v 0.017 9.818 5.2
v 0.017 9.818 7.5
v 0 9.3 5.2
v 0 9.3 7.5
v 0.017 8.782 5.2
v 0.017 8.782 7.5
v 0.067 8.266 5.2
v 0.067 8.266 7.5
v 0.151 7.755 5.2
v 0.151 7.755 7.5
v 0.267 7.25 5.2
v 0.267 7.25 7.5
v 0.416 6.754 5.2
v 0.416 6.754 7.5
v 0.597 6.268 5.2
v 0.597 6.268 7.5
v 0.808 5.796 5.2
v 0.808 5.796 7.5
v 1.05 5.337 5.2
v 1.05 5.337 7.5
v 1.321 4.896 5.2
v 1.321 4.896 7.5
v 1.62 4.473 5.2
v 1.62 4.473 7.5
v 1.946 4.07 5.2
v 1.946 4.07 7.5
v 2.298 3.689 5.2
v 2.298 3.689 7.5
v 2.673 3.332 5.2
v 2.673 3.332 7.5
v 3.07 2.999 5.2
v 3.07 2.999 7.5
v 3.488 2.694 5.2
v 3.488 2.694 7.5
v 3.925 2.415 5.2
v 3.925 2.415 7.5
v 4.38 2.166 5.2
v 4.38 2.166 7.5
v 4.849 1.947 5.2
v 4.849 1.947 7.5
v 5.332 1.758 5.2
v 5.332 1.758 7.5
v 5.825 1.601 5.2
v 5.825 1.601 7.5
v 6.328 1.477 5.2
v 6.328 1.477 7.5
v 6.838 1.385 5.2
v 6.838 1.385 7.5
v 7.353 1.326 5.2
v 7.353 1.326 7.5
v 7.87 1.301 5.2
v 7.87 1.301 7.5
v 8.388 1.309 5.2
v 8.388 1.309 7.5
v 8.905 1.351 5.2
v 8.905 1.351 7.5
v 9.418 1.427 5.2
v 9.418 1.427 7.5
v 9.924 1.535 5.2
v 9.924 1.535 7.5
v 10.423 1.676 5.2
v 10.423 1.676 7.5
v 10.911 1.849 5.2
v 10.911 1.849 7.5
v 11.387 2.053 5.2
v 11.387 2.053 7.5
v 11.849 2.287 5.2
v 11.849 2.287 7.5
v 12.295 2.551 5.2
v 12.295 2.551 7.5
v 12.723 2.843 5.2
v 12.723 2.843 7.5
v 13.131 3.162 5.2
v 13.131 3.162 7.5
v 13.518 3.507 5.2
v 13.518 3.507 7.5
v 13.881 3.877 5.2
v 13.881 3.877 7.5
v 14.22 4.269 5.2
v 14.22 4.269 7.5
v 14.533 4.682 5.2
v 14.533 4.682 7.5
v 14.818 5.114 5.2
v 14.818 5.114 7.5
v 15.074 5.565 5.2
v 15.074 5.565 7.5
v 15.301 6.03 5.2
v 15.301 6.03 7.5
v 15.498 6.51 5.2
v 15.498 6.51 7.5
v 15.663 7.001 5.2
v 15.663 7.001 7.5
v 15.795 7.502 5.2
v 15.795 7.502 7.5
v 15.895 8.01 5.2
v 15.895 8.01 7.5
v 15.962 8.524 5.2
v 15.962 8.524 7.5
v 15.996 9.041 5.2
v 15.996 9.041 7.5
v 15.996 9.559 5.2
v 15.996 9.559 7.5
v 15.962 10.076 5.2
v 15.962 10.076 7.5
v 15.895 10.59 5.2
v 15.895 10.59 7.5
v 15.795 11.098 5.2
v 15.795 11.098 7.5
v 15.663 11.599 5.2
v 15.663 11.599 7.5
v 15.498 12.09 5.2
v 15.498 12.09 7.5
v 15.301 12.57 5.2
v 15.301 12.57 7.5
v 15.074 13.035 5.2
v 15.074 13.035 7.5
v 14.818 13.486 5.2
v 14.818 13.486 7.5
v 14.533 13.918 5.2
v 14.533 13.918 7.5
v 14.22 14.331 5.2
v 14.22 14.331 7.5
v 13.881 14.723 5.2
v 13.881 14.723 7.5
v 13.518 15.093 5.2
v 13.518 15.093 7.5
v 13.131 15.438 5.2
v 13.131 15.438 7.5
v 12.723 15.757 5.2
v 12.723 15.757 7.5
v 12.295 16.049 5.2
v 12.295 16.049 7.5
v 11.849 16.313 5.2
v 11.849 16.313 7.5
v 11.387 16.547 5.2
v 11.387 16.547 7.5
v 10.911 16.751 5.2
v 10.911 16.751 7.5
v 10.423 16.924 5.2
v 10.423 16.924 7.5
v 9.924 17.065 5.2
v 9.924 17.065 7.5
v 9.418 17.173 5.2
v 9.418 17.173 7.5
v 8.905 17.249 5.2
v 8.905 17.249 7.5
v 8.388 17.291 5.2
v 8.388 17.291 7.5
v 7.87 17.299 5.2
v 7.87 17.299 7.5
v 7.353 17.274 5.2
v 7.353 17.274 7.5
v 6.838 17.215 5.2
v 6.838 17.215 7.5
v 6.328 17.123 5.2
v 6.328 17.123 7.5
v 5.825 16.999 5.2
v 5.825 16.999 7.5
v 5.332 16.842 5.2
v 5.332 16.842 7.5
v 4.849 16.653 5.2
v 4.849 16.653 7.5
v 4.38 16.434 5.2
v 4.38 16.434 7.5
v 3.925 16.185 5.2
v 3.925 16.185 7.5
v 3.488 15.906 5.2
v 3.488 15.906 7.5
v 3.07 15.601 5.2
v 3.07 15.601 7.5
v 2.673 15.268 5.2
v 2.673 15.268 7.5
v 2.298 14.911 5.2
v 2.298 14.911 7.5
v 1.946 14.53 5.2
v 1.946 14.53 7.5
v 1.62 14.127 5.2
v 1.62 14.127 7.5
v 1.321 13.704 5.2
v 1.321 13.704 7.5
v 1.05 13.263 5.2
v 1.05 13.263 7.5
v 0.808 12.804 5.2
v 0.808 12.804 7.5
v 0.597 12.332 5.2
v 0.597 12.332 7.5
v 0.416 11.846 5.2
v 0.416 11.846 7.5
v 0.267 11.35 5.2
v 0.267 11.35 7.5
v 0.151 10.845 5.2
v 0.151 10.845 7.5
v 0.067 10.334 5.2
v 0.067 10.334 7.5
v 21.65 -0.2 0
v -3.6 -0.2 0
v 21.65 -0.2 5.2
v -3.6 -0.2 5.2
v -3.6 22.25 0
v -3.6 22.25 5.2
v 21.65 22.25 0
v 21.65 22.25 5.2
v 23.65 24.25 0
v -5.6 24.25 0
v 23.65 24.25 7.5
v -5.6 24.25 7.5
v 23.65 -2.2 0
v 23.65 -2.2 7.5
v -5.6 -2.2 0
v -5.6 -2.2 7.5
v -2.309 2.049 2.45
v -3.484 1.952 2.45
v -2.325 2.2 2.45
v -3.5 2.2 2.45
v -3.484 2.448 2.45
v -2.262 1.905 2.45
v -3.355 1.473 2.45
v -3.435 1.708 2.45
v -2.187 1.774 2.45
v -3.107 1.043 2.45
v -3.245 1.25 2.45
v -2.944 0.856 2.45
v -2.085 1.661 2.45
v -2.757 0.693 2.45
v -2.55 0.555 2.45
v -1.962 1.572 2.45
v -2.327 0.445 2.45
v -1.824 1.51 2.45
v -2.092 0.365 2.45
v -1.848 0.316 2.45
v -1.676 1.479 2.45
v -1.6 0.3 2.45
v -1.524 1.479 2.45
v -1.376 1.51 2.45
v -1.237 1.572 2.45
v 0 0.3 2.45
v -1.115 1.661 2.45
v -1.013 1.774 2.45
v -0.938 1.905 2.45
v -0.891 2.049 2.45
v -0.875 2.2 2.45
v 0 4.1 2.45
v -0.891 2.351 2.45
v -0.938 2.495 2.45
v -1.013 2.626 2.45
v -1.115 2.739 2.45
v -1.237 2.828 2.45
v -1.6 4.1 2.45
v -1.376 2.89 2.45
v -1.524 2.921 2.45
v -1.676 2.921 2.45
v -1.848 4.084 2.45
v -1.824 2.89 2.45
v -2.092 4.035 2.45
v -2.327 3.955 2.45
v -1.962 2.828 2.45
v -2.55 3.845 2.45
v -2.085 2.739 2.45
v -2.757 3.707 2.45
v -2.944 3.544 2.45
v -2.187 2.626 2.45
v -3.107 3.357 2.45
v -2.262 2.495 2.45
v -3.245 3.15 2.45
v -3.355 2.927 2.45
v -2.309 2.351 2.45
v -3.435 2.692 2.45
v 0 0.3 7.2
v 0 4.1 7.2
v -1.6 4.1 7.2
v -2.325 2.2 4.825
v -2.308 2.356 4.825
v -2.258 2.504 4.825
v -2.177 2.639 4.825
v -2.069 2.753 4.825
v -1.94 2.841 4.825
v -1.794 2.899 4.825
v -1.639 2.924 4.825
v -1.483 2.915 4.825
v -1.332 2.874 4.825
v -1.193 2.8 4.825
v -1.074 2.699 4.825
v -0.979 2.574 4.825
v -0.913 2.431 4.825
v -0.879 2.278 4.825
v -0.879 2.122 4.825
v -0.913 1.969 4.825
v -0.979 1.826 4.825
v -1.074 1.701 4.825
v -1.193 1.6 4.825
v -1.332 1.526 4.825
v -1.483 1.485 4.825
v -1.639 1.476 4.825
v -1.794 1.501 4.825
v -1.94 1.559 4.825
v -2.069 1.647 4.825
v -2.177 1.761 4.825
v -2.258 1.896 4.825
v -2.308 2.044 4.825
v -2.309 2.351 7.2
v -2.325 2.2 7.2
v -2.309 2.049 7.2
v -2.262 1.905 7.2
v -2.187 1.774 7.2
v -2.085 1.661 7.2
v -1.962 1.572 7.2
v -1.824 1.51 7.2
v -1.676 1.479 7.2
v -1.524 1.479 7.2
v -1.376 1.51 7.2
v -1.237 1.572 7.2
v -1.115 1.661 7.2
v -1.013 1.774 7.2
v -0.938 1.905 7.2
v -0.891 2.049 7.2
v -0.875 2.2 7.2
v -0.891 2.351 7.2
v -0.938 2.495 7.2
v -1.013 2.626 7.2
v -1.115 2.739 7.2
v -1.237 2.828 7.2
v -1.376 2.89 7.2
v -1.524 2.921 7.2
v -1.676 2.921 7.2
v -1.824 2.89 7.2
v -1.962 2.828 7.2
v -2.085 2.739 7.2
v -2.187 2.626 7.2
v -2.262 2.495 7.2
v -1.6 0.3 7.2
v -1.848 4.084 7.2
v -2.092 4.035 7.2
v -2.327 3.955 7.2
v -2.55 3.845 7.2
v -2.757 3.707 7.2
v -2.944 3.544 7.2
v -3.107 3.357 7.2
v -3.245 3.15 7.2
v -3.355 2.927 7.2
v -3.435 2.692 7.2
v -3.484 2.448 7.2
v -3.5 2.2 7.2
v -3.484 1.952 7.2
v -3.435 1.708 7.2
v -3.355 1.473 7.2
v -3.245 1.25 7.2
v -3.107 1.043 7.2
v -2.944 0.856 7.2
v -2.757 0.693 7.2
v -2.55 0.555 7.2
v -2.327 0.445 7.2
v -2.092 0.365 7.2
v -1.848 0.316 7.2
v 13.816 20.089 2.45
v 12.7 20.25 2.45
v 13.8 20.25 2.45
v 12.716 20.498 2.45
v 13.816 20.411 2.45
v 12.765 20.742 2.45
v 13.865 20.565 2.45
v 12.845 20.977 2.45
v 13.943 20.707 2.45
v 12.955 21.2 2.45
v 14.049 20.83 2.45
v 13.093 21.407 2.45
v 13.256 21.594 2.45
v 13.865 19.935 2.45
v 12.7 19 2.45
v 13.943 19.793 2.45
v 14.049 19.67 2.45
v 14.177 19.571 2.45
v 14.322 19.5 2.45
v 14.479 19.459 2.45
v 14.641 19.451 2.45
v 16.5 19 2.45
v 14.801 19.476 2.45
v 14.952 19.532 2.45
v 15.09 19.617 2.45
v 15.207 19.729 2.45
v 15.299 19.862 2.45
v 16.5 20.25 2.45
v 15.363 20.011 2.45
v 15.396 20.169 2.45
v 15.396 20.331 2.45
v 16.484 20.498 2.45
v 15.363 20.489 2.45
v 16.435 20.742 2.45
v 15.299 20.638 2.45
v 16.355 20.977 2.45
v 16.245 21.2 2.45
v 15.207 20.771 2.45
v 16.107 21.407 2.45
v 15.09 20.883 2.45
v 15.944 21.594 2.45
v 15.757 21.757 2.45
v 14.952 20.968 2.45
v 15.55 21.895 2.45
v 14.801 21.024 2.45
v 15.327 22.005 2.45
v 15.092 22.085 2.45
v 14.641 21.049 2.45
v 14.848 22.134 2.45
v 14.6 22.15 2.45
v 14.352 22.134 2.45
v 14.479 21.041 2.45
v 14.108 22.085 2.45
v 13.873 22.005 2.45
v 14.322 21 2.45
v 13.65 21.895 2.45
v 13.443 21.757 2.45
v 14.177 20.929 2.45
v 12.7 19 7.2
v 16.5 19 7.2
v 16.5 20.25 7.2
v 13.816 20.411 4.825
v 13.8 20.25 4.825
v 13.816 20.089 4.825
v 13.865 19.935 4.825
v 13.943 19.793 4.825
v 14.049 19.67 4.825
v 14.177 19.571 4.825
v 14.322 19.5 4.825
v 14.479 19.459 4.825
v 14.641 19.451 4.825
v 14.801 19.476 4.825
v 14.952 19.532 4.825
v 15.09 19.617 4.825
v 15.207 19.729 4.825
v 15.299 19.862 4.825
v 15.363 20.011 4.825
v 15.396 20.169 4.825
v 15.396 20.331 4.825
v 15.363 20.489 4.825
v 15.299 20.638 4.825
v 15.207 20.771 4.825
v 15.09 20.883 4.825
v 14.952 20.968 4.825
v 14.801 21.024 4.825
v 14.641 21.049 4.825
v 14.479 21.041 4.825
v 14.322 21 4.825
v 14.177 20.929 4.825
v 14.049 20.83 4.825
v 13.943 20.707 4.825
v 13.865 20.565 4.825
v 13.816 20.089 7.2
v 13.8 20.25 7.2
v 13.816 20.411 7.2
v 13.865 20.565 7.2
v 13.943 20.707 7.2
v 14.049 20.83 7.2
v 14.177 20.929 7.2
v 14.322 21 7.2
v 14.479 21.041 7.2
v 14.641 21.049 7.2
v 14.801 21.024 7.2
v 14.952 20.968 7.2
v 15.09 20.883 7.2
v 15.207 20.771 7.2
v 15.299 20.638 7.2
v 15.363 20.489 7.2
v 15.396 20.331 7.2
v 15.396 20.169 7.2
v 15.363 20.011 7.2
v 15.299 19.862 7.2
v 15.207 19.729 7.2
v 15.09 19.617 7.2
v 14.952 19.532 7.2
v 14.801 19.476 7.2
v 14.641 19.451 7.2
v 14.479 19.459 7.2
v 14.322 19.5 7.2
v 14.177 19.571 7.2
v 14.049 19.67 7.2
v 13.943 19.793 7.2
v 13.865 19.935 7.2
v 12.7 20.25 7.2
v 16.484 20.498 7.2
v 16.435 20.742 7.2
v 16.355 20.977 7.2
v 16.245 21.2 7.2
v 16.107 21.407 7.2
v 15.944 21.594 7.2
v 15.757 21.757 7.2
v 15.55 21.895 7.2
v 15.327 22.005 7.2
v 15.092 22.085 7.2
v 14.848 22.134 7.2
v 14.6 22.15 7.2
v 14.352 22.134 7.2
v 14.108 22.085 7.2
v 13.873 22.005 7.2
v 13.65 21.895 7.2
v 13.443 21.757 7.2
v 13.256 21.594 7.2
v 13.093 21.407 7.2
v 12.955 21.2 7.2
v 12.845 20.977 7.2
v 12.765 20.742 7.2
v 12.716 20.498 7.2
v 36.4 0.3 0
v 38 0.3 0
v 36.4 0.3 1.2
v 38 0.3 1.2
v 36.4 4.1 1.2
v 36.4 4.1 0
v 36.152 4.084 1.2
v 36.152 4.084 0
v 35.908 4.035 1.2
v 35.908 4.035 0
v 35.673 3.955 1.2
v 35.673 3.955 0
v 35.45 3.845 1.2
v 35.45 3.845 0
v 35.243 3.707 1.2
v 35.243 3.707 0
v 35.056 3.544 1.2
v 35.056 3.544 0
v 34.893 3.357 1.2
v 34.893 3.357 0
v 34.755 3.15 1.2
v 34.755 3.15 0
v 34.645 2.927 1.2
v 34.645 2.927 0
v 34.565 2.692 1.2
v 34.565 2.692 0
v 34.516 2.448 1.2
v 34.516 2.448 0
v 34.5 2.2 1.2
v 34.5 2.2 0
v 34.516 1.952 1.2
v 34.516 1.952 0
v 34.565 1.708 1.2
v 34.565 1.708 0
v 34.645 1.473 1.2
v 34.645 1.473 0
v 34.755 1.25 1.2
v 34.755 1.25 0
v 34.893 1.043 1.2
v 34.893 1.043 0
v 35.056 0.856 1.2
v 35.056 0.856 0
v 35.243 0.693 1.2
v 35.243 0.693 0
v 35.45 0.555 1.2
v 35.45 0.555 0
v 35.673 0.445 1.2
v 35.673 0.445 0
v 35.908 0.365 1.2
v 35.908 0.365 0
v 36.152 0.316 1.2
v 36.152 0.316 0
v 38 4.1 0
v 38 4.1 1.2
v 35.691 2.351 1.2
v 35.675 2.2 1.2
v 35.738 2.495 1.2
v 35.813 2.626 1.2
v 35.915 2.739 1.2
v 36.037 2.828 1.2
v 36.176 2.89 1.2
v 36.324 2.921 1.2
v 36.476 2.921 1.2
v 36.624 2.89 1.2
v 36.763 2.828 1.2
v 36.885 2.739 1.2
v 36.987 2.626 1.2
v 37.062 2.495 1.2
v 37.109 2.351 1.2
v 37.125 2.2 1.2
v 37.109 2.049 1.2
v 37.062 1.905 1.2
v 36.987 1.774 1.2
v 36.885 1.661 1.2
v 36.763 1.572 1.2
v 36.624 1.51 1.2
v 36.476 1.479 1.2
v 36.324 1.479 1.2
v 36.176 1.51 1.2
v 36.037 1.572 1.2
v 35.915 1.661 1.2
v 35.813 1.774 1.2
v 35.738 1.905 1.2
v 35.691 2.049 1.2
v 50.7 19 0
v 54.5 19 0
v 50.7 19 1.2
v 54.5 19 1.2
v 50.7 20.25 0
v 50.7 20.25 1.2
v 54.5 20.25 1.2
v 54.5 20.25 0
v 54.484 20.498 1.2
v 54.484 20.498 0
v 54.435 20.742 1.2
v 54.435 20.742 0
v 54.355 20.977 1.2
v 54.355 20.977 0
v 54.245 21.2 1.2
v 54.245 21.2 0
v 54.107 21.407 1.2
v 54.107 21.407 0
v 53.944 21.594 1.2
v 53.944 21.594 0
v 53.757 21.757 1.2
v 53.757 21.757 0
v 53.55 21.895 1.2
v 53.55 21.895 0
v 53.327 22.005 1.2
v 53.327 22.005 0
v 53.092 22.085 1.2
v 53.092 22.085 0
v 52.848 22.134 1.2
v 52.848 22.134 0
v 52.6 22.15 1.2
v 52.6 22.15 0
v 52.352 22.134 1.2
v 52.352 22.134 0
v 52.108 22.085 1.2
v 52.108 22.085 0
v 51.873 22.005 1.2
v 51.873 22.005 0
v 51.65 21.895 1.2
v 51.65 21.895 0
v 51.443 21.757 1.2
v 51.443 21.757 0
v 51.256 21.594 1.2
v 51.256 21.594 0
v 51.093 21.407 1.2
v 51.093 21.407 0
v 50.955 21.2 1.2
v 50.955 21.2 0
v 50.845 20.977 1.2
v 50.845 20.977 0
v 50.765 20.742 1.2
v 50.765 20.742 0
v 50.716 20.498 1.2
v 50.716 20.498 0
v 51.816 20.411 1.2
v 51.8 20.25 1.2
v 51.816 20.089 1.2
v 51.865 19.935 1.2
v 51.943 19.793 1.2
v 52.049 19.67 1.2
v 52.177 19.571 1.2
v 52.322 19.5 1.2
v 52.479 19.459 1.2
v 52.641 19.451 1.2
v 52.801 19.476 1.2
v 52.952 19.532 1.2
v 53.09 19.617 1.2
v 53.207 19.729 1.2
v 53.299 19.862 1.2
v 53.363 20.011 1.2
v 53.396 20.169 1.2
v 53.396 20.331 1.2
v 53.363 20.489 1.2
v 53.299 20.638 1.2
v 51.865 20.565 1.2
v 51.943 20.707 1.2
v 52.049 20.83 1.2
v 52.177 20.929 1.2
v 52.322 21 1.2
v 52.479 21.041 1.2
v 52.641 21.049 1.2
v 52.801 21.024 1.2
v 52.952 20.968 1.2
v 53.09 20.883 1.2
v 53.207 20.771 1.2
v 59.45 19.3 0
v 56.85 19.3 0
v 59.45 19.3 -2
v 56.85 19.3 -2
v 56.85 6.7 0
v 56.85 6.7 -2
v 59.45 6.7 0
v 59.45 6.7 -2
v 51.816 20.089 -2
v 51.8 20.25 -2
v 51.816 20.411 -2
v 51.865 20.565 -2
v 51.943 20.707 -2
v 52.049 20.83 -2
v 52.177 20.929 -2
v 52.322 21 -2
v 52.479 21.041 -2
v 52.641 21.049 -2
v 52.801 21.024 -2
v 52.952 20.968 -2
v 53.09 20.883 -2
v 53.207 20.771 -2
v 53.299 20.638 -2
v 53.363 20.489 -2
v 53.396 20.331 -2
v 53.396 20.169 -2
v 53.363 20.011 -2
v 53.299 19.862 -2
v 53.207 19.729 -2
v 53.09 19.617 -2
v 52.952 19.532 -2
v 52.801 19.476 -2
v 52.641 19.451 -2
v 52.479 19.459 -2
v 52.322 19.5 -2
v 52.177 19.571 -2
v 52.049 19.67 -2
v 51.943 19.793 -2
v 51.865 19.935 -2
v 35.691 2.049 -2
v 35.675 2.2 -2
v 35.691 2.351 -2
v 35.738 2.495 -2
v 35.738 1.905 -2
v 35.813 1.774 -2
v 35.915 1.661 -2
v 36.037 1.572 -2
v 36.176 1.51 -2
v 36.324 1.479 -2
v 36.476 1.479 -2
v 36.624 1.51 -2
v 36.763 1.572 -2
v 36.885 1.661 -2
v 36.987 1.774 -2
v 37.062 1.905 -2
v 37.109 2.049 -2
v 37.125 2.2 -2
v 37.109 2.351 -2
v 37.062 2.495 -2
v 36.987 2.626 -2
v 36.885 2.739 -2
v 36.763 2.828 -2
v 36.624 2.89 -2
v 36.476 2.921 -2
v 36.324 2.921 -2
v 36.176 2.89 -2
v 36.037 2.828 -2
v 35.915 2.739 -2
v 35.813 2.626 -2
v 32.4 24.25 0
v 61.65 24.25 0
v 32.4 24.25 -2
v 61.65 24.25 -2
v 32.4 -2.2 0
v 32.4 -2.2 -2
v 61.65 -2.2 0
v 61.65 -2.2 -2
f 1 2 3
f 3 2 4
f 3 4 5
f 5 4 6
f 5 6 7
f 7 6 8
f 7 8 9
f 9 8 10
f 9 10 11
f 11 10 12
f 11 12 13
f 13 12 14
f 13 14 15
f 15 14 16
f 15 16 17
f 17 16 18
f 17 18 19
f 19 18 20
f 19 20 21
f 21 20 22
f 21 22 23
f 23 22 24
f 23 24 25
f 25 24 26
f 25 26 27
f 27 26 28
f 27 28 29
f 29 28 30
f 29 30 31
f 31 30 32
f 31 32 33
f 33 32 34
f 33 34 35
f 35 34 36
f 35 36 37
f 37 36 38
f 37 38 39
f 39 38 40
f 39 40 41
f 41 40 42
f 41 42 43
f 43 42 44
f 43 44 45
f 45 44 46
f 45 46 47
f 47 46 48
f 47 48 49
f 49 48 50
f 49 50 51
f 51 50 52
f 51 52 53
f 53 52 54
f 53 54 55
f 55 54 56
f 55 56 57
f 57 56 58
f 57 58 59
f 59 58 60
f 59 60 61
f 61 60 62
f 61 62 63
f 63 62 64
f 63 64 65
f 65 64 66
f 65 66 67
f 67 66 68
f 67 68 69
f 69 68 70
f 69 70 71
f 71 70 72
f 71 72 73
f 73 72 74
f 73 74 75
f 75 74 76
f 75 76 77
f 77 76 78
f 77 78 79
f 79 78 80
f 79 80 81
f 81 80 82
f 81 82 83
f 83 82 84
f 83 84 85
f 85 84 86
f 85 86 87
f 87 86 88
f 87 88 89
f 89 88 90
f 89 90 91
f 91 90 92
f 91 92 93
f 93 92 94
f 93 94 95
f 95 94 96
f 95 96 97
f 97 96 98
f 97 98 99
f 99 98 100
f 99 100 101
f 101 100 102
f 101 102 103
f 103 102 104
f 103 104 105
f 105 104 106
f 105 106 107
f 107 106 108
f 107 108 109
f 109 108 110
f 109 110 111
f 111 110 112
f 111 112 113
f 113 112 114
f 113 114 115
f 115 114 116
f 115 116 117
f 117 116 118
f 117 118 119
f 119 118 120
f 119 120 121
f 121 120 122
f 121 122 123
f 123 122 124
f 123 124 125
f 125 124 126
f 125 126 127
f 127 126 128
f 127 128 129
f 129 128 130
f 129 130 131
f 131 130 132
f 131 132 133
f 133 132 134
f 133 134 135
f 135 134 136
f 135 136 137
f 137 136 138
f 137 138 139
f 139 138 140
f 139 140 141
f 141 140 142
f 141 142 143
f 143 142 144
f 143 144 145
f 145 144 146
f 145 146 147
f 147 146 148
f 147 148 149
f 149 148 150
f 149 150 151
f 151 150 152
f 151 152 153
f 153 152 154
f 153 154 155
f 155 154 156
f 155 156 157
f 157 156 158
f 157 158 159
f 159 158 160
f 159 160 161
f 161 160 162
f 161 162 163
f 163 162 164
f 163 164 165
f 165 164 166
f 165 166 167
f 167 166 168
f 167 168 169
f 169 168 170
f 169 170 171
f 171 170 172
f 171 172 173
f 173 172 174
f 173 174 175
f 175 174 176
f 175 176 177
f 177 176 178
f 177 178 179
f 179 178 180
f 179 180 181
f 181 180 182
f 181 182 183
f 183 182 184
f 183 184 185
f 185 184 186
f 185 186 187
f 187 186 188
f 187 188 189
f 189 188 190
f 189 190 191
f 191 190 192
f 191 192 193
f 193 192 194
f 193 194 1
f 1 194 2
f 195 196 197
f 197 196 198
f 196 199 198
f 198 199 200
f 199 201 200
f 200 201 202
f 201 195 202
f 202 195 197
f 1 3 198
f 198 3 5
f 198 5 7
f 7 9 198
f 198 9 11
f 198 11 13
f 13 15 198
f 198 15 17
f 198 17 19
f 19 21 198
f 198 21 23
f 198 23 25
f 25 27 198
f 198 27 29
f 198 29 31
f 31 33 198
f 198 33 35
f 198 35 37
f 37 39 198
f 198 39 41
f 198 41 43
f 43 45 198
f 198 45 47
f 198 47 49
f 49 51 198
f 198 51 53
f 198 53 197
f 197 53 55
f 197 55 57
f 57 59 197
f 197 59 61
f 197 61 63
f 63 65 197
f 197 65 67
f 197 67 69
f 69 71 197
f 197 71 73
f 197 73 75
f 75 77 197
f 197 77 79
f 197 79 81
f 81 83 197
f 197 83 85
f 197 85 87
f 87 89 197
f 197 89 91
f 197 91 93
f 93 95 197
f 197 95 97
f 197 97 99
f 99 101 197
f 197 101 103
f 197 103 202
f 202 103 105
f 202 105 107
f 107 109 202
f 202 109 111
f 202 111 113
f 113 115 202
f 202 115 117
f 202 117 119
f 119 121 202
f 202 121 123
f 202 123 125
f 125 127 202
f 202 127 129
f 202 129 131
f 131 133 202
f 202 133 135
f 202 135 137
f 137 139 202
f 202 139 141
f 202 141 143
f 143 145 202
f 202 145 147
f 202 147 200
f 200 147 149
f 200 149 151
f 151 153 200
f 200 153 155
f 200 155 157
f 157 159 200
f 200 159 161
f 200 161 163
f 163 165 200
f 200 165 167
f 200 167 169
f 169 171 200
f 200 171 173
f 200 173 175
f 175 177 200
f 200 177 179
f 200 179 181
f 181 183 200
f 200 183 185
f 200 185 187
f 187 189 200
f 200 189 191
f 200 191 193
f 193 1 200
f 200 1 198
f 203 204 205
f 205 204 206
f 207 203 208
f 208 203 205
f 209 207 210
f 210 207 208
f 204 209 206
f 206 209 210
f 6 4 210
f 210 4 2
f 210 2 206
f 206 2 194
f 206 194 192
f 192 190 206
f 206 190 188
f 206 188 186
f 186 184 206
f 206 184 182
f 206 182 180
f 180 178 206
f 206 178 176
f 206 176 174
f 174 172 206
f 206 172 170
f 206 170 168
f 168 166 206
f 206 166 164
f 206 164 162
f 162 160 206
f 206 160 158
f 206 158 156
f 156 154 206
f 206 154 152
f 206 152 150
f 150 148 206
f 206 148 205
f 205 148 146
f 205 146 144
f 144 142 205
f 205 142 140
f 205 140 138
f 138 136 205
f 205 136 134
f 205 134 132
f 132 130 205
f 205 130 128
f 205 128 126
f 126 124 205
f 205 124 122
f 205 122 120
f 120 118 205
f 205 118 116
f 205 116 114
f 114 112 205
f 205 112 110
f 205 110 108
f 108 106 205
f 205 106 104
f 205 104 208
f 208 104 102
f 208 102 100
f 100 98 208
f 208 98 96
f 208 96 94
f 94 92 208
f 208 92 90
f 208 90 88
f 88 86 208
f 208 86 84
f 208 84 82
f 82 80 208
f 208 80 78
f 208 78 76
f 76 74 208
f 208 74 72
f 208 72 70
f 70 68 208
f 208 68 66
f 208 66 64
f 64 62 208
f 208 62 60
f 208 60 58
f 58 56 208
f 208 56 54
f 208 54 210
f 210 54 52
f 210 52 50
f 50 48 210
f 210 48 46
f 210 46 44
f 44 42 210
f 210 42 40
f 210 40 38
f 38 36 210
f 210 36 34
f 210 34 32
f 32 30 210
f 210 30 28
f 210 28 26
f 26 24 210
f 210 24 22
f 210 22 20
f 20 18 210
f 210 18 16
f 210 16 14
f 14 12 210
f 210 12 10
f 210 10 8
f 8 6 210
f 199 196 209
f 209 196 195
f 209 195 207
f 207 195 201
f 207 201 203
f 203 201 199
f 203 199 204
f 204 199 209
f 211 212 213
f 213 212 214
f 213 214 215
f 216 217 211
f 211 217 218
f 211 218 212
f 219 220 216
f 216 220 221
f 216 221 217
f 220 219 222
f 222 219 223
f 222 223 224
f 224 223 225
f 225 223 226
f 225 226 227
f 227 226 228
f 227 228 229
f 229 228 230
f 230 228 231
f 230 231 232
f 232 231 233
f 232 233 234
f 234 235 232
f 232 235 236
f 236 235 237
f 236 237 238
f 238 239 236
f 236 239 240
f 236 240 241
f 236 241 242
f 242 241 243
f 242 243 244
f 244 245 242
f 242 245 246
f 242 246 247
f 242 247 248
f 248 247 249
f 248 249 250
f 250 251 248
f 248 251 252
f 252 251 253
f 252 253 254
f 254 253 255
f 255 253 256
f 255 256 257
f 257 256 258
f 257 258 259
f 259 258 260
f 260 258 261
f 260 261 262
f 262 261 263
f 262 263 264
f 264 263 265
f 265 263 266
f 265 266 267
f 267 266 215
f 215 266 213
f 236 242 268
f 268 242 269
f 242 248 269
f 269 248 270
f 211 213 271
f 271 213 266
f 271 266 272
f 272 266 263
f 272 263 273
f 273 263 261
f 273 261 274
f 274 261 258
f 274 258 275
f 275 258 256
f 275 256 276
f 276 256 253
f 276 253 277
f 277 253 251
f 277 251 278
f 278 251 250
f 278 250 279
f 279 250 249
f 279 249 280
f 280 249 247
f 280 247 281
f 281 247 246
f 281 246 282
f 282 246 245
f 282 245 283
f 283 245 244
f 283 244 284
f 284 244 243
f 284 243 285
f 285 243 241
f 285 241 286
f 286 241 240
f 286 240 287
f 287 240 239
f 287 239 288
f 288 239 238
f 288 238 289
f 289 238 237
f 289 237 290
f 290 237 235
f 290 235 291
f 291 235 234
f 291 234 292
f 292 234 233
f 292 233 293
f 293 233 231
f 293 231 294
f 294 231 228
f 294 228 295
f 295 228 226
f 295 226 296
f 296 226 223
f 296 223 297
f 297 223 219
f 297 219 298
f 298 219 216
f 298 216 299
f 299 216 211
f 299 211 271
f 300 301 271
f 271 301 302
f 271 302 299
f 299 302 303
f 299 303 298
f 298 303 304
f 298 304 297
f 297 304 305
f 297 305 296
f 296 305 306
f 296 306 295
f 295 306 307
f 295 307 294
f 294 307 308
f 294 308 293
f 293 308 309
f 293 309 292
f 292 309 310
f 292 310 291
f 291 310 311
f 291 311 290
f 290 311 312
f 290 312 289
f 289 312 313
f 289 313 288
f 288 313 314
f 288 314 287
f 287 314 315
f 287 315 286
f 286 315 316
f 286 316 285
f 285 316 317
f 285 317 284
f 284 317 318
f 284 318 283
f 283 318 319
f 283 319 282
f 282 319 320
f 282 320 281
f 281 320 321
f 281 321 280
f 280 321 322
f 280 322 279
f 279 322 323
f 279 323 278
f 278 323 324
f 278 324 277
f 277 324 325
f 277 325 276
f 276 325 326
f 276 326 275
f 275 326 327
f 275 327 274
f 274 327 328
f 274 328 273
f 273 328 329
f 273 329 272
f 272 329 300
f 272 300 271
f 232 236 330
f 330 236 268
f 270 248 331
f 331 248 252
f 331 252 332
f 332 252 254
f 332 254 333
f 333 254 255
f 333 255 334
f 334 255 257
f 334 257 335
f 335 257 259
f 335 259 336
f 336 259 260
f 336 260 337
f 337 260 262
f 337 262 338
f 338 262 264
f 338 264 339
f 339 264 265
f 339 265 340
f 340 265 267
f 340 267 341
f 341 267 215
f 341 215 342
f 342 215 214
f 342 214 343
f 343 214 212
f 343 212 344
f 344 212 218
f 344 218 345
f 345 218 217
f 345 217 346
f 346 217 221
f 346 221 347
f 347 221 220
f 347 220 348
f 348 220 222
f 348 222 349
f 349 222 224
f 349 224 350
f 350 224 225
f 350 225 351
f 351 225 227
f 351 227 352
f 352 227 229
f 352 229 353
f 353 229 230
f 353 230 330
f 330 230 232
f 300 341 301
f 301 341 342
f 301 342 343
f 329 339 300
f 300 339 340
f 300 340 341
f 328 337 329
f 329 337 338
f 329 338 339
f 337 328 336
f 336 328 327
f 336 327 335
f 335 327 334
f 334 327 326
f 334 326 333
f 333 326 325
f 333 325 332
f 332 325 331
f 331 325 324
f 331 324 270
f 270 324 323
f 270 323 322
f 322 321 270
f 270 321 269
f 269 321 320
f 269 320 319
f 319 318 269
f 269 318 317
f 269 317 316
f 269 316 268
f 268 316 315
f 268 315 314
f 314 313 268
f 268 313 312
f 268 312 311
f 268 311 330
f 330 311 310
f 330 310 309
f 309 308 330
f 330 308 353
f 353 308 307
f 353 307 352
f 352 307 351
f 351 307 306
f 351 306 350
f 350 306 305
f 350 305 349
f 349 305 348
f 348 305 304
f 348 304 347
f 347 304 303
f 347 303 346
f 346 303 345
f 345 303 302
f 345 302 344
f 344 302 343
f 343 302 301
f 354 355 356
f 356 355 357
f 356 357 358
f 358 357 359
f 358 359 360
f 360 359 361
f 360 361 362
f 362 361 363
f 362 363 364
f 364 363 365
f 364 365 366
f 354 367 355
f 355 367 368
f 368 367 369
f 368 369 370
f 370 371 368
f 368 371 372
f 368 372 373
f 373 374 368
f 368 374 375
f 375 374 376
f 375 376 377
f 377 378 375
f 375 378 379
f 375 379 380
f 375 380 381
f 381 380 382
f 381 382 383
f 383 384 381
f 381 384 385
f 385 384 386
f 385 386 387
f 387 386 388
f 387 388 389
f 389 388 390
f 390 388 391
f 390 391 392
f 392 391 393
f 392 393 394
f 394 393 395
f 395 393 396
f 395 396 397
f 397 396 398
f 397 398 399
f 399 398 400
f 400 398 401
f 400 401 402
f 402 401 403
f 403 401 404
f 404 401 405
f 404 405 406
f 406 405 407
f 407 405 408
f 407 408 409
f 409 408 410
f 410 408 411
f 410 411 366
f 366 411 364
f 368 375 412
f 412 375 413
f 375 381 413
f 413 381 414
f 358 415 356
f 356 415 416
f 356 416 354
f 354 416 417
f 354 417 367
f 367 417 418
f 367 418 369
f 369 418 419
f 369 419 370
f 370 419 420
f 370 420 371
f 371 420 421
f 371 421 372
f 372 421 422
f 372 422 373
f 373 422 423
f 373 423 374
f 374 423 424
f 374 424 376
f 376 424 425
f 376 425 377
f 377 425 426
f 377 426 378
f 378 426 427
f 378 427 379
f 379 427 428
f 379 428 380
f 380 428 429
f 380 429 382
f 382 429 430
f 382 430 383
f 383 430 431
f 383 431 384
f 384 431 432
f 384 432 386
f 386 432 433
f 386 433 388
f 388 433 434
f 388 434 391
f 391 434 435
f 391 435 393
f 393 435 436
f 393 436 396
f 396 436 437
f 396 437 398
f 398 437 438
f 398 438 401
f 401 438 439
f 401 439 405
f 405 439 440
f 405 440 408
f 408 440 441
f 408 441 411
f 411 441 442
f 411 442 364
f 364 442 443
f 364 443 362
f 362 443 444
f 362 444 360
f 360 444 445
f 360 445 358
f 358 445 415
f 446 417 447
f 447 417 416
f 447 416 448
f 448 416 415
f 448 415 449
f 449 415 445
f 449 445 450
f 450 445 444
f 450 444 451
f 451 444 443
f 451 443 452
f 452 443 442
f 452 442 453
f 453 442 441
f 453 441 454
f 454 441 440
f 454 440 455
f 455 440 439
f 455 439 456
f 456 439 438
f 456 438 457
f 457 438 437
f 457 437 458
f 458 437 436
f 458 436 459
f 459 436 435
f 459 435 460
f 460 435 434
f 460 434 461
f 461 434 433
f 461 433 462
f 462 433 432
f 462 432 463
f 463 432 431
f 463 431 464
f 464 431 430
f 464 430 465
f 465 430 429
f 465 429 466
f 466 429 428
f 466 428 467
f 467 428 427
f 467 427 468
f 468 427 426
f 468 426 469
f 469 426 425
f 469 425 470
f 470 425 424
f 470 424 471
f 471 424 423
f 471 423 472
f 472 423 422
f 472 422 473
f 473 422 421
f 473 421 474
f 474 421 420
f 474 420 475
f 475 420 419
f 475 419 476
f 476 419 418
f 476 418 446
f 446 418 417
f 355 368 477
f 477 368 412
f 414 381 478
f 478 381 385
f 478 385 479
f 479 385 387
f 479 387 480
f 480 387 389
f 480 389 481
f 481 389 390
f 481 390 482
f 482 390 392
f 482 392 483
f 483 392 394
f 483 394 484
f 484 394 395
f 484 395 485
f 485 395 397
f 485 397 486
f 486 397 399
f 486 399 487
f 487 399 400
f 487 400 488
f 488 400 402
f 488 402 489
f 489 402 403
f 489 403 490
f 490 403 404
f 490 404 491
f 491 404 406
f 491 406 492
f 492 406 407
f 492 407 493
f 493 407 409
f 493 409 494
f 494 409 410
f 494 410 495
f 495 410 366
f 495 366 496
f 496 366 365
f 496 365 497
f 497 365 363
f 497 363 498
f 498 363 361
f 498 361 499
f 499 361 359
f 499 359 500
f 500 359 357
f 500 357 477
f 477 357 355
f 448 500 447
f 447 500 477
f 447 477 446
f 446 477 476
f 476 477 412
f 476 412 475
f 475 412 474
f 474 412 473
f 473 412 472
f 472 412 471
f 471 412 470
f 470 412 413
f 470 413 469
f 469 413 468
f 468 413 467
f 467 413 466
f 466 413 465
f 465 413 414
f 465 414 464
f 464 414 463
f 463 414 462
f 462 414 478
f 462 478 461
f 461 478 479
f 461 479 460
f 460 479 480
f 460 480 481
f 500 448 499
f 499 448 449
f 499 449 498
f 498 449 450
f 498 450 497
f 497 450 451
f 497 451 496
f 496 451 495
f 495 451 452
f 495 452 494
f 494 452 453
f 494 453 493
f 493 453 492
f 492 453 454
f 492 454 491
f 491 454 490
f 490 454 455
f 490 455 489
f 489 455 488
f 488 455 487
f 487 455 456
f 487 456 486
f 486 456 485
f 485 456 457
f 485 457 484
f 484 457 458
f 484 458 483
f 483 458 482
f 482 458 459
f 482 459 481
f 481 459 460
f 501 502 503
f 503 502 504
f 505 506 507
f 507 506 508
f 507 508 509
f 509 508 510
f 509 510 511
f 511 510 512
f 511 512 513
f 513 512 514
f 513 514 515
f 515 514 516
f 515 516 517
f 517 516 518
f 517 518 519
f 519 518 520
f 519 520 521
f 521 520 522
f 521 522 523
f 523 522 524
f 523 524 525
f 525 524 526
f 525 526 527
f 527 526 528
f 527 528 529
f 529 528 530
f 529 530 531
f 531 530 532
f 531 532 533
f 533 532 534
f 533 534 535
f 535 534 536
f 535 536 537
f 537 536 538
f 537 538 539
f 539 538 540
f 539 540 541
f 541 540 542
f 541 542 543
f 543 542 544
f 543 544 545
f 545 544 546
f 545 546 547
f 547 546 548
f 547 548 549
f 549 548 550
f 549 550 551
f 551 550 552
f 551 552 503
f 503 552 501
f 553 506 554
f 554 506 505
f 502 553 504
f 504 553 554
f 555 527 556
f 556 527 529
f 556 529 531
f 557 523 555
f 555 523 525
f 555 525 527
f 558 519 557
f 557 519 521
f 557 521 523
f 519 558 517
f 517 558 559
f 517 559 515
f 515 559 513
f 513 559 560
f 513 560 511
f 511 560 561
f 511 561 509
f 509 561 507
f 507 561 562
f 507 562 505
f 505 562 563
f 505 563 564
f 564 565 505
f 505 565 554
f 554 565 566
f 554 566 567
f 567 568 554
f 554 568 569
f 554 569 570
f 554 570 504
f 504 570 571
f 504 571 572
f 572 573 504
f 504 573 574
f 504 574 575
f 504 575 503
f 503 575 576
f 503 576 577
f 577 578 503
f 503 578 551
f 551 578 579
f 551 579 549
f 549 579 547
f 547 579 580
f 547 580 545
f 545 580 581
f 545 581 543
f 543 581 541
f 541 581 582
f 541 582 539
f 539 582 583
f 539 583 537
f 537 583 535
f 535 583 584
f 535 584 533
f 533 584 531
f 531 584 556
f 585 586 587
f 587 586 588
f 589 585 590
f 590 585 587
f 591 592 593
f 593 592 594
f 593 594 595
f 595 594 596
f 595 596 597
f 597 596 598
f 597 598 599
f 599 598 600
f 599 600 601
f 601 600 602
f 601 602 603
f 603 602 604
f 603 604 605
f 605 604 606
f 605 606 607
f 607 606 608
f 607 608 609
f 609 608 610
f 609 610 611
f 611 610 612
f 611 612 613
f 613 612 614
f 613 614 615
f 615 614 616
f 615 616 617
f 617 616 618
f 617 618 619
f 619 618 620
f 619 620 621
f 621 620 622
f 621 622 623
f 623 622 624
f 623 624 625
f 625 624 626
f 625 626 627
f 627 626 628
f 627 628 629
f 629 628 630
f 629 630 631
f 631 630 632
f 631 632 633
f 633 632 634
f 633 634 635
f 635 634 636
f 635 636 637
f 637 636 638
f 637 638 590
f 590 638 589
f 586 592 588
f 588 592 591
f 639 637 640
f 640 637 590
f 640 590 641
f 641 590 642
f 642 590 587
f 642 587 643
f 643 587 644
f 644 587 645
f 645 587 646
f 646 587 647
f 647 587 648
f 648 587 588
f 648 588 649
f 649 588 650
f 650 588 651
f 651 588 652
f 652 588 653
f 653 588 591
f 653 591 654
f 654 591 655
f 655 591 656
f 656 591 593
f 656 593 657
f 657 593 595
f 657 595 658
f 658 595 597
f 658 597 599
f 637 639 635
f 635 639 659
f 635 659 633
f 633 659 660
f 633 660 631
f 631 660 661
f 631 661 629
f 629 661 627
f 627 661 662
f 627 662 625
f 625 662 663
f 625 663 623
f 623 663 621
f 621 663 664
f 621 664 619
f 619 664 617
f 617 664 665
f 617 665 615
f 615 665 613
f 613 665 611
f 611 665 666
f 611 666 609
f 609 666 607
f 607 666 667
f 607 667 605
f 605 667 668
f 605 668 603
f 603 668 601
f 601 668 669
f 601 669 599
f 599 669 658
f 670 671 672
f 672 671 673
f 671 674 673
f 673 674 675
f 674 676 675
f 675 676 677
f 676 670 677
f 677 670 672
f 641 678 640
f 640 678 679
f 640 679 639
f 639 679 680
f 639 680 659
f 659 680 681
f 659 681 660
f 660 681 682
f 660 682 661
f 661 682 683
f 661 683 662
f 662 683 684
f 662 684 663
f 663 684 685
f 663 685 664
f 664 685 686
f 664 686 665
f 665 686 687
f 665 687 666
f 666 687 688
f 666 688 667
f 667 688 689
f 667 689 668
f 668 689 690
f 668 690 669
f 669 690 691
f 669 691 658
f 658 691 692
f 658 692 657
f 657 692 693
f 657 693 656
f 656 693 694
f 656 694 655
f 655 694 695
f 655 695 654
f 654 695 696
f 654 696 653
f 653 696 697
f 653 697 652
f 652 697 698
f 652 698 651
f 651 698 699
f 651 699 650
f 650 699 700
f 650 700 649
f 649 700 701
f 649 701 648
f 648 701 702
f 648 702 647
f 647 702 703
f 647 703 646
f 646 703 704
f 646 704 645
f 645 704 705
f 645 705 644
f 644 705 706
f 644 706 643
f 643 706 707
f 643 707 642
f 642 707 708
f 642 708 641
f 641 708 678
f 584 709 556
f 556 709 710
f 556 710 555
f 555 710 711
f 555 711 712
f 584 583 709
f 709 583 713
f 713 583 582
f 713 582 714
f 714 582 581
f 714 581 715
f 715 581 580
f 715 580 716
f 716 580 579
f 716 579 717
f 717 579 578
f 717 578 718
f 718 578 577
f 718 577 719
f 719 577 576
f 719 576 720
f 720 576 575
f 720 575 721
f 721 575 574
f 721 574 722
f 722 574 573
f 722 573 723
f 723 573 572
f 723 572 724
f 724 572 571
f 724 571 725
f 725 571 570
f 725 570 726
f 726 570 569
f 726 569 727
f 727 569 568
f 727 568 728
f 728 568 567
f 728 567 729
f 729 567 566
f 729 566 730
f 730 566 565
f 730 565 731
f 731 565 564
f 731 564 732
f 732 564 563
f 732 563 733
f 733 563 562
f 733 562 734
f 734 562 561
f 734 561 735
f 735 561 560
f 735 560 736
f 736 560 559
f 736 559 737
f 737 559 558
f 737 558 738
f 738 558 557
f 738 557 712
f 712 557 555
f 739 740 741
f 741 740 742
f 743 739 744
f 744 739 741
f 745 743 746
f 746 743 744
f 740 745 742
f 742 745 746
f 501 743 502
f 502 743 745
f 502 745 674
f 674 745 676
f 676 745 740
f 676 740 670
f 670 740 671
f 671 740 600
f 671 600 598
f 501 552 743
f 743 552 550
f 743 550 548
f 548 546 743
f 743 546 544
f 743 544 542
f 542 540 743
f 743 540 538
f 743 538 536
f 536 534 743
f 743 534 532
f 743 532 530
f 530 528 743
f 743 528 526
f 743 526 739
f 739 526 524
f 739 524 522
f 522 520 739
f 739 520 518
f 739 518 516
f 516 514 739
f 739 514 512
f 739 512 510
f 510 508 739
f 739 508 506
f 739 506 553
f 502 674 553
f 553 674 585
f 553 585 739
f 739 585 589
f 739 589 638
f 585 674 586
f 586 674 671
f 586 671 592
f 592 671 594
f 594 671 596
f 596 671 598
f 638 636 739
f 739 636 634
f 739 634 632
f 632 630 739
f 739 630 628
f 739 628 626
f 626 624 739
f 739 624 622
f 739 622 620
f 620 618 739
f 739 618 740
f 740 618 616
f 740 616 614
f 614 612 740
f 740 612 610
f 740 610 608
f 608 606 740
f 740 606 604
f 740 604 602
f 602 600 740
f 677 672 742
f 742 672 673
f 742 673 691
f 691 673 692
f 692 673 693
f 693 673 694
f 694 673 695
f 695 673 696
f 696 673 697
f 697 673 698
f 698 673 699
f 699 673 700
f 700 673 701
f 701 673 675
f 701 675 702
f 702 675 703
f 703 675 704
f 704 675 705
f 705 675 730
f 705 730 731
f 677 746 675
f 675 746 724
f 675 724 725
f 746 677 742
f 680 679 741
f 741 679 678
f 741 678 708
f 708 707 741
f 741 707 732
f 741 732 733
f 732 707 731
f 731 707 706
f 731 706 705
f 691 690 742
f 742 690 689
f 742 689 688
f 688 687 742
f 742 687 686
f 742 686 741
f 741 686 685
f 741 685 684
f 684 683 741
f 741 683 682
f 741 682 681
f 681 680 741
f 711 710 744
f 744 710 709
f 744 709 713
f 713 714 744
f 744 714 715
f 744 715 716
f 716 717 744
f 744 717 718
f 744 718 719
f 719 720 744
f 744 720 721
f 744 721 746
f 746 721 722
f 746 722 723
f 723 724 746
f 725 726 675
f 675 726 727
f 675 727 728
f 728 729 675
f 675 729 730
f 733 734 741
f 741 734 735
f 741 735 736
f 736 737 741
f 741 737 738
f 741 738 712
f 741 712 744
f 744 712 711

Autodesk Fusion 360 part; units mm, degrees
sketch "Sketch3" plane through (0, 0, 0) normal (0, 0, 1) x (1, 0, 0)
  line L0 (0, 0) -> (16.95, 0)
  line L1 (16.95, 0) -> (16.95, 19)
  line L2 (16.95, 19) -> (0, 19)
  line L3 (0, 19) -> (0, 0)
  circle A0 centre (8, 9.3) radius 8
  circle A1 centre (14.6, 20.25) radius 0.8
  circle A2 centre (14.6, 20.25) radius 1.9
  line L4 (16.5, 20.25) -> (12.7, 20.25)
  line L5 (12.7, 20.25) -> (12.7, 19)
  line L6 (12.7, 19) -> (16.5, 19)
  line L7 (16.5, 19) -> (16.5, 20.25)
  circle A3 centre (-1.6, 2.2) radius 0.725
  circle A4 centre (-1.6, 2.2) radius 1.9
  line L8 (0, 4.1) -> (0, 0)
  line L9 (-1.6, 0.3) -> (0, 0.3)
  line L10 (0, 0.3) -> (0, 4.1)
  line L11 (0, 4.1) -> (-1.6, 4.1)
  line L12 (-1.6, 4.1) -> (-1.6, 0.3)
  line L13 (21.45, 19.3) -> (18.85, 19.3)
  line L14 (18.85, 19.3) -> (18.85, 16.7)
  line L15 (18.85, 16.7) -> (21.45, 16.7)
  line L16 (21.45, 16.7) -> (21.45, 19.3)
  line L17 (21.45, 19.3) -> (18.85, 16.7) construction
  line L18 (18.85, 19.3) -> (21.45, 16.7) construction
  line L19 (18.85, 19.3) -> (21.45, 19.3)
  line L20 (21.45, 19.3) -> (21.45, 6.7)
  line L21 (21.45, 6.7) -> (18.85, 6.7)
  line L22 (18.85, 6.7) -> (18.85, 19.3)
  circle A5 centre (52.6, 20.25) radius 1.9
  line L23 (38, 4.1) -> (38, 0)
  line L24 (59.45, 6.7) -> (56.85, 6.7)
  line L25 (50.7, 19) -> (54.5, 19)
  line L26 (59.45, 19.3) -> (56.85, 19.3)
  circle A6 centre (36.4, 2.2) radius 0.725
  line L27 (36.4, 0.3) -> (38, 0.3)
  line L28 (54.5, 19) -> (54.5, 20.25)
  line L29 (56.85, 19.3) -> (59.45, 19.3)
  line L30 (56.85, 6.7) -> (56.85, 19.3)
  line L31 (38, 0.3) -> (38, 4.1)
  circle A7 centre (52.6, 20.25) radius 0.8
  line L32 (36.4, 4.1) -> (36.4, 0.3)
  line L33 (54.95, 0) -> (54.95, 19)
  line L34 (56.85, 19.3) -> (56.85, 16.7)
  line L35 (59.45, 19.3) -> (59.45, 6.7)
  line L36 (59.45, 19.3) -> (56.85, 16.7) construction
  line L37 (54.95, 19) -> (38, 19)
  circle A8 centre (36.4, 2.2) radius 1.9
  line L38 (38, 4.1) -> (36.4, 4.1)
  line L39 (56.85, 19.3) -> (59.45, 16.7) construction
  line L40 (54.5, 20.25) -> (50.7, 20.25)
  line L41 (56.85, 16.7) -> (59.45, 16.7)
  line L42 (38, 0) -> (54.95, 0)
  line L43 (59.45, 16.7) -> (59.45, 19.3)
  circle A9 centre (46, 9.3) radius 8
  line L44 (50.7, 20.25) -> (50.7, 19)
  line L45 (38, 19) -> (38, 0)
  point P0 (8, 9.3)
  point P1 (14.6, 20.25)
  point P2 (-1.6, 2.2)
  point P3 (20.15, 18)
  point P4 (20.15, 18)
  point P5 (38, 0)
  point P6 (52.6, 20.25)
  point P7 (46, 9.3)
  point P8 (36.4, 2.2)
  point P9 (58.15, 18)
  point P10 (58.15, 18)
  dimension "d8" = 16.95
  dimension "d9" = 19
  dimension "d10" = 9.3
  dimension "d11" = 8
  dimension "d12" = 16
  dimension "d13" = 10.95
  dimension "d14" = 14.6
  dimension "d15" = 1.6
  dimension "d16" = 3.8
  dimension "d17" = 7.1
  dimension "d18" = 16.2
  dimension "d19" = 1.45
  dimension "d20" = 3.8
  dimension "d21" = 5.55
  dimension "d22" = 2.25
  dimension "d23" = 2.6
  dimension "d24" = 2.6
  dimension "d25" = 2.6
  dimension "d26" = 12.6
  dimension "d40" = 16.95
  dimension "d41" = 19
  dimension "d42" = 9.3
  dimension "d43" = 8
  dimension "d44" = 16
  dimension "d45" = 10.95
  dimension "d46" = 14.6
  dimension "d47" = 1.6
  dimension "d48" = 3.8
  dimension "d49" = 7.1
  dimension "d50" = 16.2
  dimension "d51" = 1.45
  dimension "d52" = 3.8
  dimension "d53" = 5.55
  dimension "d54" = 2.25
  dimension "d55" = 2.6
  dimension "d56" = 2.6
  dimension "d57" = 2.6
  dimension "d58" = 12.6
sketch "Sketch5" plane through (0, 0, 0) normal (0, 0, 1) x (1, 0, 0)
  line L0 (21.65, 22.25) -> (-3.6, 22.25)
  line L1 (-3.6, 22.25) -> (-3.6, -0.2)
  line L2 (-3.6, -0.2) -> (21.65, -0.2)
  line L3 (21.65, -0.2) -> (21.65, 22.25)
  line L4 (21.45, 19.3) -> (21.45, 6.7)
  line L5 (0, 0) -> (16.95, 0)
  line L6 (-5.6, -2.2) -> (23.65, -2.2)
  line L7 (23.65, -2.2) -> (23.65, 24.25)
  line L8 (23.65, 24.25) -> (-5.6, 24.25)
  line L9 (-5.6, 24.25) -> (-5.6, -2.2)
  line L10 (61.65, 24.25) -> (32.4, 24.25)
  line L11 (34.4, -0.2) -> (59.65, -0.2)
  line L12 (38, 0) -> (54.95, 0)
  line L13 (32.4, 24.25) -> (32.4, -2.2)
  line L14 (32.4, -2.2) -> (61.65, -2.2)
  line L15 (61.65, -2.2) -> (61.65, 24.25)
  line L16 (59.65, 22.25) -> (34.4, 22.25)
  line L17 (34.4, 22.25) -> (34.4, -0.2)
  line L18 (59.45, 19.3) -> (59.45, 6.7)
  line L19 (59.65, -0.2) -> (59.65, 22.25)
  point P0 (-1.6, 2.2)
  point P1 (14.6, 20.25)
  point P2 (38, 0)
  point P3 (36.4, 2.2)
  point P4 (52.6, 20.25)
  dimension "d28" = 2
  dimension "d29" = 2
  dimension "d30" = 0.2
  dimension "d31" = 0.2
  dimension "d32" = 2
  dimension "d33" = 2
  dimension "d34" = 2
  dimension "d35" = 2
  dimension "d69" = 2
  dimension "d70" = 2
  dimension "d71" = 0.2
  dimension "d72" = 0.2
  dimension "d73" = 2
  dimension "d74" = 2
  dimension "d75" = 2
  dimension "d76" = 2
extrude "Extrude3" add sketch "Sketch5" along normal blind 7.5 contours L0 L1 L2 L3 | L6 L7 L8 L9 makes body 1
extrude "Extrude4" cut sketch "Sketch5" along normal blind 5.2 contours L0 L1 L2 L3 bodies 1
extrude "Extrude5" cut sketch "Sketch3" along normal blind 8 contours A0 bodies 1
extrude "Extrude6" add sketch "Sketch3" along normal blind 7.2 separate body contours L3 A4 L8 L9 L10 | L3 A3 A4 L8 L10 L12 | A3 A4 L12 | L2 A2 L6 L7 | L3 A4 L8 L10 L11 | L2 A1 A2 L4 L6 | A1 A2 L4 | L2 A2 L5 L6 makes body 2 at (-1.6947, 0.3024, 4.8) makes body 3 at (12.7094, 20.4392, 2.4)
extrude "Extrude7" cut sketch "Sketch3" along normal blind 2.45 contours L3 A4 L8 L9 L10 | L3 A3 A4 L8 L10 L12 | A3 A4 L12 | L2 A2 L6 L7 | L3 A4 L8 L10 L11 | L2 A1 A2 L4 L6 | A1 A2 L4 | L2 A2 L5 L6 bodies 2 3
extrude "Extrude8" add sketch "Sketch3" sketch "Sketch5" against normal blind 2 separate body contours A5 A7 L40 | A5 L25 L28 L37 | A5 L25 A7 L37 L40 | A5 L25 L37 L44 | A9 | A5 L23 L25 L31 L33 L37 A8 L42 L45 | A5 L25 L37 | A7 L40 | A7 L40 | L23 L31 A8 L38 L45 | L23 L27 L31 A8 L45 | L23 L31 A8 L45 | L23 A6 L31 L32 A8 L45 | A6 L32 A8 | A6 L32 | A6 L32 | L24 L30 L35 L41 | L26 L29 L30 L34 L35 L41 L43 of sketch 2 contours L10 L13 L14 L15 | L11 L16 L17 L19 makes body 4
extrude "Extrude9" cut sketch "Sketch3" against normal blind 2 contours A7 L40 | A7 L40 | A6 L32 | A6 L32 | L24 L30 L35 L41 | L26 L29 L30 L34 L35 L41 L43 bodies 4
extrude "Extrude10" add sketch "Sketch3" along normal blind 1.2 contours A5 A7 L40 | A5 L25 L28 L37 | A5 L25 A7 L37 L40 | A5 L25 L37 L44 | L23 L31 A8 L38 L45 | L23 L27 L31 A8 L45 | L23 A6 L31 L32 A8 L45 | A6 L32 A8 bodies 4
